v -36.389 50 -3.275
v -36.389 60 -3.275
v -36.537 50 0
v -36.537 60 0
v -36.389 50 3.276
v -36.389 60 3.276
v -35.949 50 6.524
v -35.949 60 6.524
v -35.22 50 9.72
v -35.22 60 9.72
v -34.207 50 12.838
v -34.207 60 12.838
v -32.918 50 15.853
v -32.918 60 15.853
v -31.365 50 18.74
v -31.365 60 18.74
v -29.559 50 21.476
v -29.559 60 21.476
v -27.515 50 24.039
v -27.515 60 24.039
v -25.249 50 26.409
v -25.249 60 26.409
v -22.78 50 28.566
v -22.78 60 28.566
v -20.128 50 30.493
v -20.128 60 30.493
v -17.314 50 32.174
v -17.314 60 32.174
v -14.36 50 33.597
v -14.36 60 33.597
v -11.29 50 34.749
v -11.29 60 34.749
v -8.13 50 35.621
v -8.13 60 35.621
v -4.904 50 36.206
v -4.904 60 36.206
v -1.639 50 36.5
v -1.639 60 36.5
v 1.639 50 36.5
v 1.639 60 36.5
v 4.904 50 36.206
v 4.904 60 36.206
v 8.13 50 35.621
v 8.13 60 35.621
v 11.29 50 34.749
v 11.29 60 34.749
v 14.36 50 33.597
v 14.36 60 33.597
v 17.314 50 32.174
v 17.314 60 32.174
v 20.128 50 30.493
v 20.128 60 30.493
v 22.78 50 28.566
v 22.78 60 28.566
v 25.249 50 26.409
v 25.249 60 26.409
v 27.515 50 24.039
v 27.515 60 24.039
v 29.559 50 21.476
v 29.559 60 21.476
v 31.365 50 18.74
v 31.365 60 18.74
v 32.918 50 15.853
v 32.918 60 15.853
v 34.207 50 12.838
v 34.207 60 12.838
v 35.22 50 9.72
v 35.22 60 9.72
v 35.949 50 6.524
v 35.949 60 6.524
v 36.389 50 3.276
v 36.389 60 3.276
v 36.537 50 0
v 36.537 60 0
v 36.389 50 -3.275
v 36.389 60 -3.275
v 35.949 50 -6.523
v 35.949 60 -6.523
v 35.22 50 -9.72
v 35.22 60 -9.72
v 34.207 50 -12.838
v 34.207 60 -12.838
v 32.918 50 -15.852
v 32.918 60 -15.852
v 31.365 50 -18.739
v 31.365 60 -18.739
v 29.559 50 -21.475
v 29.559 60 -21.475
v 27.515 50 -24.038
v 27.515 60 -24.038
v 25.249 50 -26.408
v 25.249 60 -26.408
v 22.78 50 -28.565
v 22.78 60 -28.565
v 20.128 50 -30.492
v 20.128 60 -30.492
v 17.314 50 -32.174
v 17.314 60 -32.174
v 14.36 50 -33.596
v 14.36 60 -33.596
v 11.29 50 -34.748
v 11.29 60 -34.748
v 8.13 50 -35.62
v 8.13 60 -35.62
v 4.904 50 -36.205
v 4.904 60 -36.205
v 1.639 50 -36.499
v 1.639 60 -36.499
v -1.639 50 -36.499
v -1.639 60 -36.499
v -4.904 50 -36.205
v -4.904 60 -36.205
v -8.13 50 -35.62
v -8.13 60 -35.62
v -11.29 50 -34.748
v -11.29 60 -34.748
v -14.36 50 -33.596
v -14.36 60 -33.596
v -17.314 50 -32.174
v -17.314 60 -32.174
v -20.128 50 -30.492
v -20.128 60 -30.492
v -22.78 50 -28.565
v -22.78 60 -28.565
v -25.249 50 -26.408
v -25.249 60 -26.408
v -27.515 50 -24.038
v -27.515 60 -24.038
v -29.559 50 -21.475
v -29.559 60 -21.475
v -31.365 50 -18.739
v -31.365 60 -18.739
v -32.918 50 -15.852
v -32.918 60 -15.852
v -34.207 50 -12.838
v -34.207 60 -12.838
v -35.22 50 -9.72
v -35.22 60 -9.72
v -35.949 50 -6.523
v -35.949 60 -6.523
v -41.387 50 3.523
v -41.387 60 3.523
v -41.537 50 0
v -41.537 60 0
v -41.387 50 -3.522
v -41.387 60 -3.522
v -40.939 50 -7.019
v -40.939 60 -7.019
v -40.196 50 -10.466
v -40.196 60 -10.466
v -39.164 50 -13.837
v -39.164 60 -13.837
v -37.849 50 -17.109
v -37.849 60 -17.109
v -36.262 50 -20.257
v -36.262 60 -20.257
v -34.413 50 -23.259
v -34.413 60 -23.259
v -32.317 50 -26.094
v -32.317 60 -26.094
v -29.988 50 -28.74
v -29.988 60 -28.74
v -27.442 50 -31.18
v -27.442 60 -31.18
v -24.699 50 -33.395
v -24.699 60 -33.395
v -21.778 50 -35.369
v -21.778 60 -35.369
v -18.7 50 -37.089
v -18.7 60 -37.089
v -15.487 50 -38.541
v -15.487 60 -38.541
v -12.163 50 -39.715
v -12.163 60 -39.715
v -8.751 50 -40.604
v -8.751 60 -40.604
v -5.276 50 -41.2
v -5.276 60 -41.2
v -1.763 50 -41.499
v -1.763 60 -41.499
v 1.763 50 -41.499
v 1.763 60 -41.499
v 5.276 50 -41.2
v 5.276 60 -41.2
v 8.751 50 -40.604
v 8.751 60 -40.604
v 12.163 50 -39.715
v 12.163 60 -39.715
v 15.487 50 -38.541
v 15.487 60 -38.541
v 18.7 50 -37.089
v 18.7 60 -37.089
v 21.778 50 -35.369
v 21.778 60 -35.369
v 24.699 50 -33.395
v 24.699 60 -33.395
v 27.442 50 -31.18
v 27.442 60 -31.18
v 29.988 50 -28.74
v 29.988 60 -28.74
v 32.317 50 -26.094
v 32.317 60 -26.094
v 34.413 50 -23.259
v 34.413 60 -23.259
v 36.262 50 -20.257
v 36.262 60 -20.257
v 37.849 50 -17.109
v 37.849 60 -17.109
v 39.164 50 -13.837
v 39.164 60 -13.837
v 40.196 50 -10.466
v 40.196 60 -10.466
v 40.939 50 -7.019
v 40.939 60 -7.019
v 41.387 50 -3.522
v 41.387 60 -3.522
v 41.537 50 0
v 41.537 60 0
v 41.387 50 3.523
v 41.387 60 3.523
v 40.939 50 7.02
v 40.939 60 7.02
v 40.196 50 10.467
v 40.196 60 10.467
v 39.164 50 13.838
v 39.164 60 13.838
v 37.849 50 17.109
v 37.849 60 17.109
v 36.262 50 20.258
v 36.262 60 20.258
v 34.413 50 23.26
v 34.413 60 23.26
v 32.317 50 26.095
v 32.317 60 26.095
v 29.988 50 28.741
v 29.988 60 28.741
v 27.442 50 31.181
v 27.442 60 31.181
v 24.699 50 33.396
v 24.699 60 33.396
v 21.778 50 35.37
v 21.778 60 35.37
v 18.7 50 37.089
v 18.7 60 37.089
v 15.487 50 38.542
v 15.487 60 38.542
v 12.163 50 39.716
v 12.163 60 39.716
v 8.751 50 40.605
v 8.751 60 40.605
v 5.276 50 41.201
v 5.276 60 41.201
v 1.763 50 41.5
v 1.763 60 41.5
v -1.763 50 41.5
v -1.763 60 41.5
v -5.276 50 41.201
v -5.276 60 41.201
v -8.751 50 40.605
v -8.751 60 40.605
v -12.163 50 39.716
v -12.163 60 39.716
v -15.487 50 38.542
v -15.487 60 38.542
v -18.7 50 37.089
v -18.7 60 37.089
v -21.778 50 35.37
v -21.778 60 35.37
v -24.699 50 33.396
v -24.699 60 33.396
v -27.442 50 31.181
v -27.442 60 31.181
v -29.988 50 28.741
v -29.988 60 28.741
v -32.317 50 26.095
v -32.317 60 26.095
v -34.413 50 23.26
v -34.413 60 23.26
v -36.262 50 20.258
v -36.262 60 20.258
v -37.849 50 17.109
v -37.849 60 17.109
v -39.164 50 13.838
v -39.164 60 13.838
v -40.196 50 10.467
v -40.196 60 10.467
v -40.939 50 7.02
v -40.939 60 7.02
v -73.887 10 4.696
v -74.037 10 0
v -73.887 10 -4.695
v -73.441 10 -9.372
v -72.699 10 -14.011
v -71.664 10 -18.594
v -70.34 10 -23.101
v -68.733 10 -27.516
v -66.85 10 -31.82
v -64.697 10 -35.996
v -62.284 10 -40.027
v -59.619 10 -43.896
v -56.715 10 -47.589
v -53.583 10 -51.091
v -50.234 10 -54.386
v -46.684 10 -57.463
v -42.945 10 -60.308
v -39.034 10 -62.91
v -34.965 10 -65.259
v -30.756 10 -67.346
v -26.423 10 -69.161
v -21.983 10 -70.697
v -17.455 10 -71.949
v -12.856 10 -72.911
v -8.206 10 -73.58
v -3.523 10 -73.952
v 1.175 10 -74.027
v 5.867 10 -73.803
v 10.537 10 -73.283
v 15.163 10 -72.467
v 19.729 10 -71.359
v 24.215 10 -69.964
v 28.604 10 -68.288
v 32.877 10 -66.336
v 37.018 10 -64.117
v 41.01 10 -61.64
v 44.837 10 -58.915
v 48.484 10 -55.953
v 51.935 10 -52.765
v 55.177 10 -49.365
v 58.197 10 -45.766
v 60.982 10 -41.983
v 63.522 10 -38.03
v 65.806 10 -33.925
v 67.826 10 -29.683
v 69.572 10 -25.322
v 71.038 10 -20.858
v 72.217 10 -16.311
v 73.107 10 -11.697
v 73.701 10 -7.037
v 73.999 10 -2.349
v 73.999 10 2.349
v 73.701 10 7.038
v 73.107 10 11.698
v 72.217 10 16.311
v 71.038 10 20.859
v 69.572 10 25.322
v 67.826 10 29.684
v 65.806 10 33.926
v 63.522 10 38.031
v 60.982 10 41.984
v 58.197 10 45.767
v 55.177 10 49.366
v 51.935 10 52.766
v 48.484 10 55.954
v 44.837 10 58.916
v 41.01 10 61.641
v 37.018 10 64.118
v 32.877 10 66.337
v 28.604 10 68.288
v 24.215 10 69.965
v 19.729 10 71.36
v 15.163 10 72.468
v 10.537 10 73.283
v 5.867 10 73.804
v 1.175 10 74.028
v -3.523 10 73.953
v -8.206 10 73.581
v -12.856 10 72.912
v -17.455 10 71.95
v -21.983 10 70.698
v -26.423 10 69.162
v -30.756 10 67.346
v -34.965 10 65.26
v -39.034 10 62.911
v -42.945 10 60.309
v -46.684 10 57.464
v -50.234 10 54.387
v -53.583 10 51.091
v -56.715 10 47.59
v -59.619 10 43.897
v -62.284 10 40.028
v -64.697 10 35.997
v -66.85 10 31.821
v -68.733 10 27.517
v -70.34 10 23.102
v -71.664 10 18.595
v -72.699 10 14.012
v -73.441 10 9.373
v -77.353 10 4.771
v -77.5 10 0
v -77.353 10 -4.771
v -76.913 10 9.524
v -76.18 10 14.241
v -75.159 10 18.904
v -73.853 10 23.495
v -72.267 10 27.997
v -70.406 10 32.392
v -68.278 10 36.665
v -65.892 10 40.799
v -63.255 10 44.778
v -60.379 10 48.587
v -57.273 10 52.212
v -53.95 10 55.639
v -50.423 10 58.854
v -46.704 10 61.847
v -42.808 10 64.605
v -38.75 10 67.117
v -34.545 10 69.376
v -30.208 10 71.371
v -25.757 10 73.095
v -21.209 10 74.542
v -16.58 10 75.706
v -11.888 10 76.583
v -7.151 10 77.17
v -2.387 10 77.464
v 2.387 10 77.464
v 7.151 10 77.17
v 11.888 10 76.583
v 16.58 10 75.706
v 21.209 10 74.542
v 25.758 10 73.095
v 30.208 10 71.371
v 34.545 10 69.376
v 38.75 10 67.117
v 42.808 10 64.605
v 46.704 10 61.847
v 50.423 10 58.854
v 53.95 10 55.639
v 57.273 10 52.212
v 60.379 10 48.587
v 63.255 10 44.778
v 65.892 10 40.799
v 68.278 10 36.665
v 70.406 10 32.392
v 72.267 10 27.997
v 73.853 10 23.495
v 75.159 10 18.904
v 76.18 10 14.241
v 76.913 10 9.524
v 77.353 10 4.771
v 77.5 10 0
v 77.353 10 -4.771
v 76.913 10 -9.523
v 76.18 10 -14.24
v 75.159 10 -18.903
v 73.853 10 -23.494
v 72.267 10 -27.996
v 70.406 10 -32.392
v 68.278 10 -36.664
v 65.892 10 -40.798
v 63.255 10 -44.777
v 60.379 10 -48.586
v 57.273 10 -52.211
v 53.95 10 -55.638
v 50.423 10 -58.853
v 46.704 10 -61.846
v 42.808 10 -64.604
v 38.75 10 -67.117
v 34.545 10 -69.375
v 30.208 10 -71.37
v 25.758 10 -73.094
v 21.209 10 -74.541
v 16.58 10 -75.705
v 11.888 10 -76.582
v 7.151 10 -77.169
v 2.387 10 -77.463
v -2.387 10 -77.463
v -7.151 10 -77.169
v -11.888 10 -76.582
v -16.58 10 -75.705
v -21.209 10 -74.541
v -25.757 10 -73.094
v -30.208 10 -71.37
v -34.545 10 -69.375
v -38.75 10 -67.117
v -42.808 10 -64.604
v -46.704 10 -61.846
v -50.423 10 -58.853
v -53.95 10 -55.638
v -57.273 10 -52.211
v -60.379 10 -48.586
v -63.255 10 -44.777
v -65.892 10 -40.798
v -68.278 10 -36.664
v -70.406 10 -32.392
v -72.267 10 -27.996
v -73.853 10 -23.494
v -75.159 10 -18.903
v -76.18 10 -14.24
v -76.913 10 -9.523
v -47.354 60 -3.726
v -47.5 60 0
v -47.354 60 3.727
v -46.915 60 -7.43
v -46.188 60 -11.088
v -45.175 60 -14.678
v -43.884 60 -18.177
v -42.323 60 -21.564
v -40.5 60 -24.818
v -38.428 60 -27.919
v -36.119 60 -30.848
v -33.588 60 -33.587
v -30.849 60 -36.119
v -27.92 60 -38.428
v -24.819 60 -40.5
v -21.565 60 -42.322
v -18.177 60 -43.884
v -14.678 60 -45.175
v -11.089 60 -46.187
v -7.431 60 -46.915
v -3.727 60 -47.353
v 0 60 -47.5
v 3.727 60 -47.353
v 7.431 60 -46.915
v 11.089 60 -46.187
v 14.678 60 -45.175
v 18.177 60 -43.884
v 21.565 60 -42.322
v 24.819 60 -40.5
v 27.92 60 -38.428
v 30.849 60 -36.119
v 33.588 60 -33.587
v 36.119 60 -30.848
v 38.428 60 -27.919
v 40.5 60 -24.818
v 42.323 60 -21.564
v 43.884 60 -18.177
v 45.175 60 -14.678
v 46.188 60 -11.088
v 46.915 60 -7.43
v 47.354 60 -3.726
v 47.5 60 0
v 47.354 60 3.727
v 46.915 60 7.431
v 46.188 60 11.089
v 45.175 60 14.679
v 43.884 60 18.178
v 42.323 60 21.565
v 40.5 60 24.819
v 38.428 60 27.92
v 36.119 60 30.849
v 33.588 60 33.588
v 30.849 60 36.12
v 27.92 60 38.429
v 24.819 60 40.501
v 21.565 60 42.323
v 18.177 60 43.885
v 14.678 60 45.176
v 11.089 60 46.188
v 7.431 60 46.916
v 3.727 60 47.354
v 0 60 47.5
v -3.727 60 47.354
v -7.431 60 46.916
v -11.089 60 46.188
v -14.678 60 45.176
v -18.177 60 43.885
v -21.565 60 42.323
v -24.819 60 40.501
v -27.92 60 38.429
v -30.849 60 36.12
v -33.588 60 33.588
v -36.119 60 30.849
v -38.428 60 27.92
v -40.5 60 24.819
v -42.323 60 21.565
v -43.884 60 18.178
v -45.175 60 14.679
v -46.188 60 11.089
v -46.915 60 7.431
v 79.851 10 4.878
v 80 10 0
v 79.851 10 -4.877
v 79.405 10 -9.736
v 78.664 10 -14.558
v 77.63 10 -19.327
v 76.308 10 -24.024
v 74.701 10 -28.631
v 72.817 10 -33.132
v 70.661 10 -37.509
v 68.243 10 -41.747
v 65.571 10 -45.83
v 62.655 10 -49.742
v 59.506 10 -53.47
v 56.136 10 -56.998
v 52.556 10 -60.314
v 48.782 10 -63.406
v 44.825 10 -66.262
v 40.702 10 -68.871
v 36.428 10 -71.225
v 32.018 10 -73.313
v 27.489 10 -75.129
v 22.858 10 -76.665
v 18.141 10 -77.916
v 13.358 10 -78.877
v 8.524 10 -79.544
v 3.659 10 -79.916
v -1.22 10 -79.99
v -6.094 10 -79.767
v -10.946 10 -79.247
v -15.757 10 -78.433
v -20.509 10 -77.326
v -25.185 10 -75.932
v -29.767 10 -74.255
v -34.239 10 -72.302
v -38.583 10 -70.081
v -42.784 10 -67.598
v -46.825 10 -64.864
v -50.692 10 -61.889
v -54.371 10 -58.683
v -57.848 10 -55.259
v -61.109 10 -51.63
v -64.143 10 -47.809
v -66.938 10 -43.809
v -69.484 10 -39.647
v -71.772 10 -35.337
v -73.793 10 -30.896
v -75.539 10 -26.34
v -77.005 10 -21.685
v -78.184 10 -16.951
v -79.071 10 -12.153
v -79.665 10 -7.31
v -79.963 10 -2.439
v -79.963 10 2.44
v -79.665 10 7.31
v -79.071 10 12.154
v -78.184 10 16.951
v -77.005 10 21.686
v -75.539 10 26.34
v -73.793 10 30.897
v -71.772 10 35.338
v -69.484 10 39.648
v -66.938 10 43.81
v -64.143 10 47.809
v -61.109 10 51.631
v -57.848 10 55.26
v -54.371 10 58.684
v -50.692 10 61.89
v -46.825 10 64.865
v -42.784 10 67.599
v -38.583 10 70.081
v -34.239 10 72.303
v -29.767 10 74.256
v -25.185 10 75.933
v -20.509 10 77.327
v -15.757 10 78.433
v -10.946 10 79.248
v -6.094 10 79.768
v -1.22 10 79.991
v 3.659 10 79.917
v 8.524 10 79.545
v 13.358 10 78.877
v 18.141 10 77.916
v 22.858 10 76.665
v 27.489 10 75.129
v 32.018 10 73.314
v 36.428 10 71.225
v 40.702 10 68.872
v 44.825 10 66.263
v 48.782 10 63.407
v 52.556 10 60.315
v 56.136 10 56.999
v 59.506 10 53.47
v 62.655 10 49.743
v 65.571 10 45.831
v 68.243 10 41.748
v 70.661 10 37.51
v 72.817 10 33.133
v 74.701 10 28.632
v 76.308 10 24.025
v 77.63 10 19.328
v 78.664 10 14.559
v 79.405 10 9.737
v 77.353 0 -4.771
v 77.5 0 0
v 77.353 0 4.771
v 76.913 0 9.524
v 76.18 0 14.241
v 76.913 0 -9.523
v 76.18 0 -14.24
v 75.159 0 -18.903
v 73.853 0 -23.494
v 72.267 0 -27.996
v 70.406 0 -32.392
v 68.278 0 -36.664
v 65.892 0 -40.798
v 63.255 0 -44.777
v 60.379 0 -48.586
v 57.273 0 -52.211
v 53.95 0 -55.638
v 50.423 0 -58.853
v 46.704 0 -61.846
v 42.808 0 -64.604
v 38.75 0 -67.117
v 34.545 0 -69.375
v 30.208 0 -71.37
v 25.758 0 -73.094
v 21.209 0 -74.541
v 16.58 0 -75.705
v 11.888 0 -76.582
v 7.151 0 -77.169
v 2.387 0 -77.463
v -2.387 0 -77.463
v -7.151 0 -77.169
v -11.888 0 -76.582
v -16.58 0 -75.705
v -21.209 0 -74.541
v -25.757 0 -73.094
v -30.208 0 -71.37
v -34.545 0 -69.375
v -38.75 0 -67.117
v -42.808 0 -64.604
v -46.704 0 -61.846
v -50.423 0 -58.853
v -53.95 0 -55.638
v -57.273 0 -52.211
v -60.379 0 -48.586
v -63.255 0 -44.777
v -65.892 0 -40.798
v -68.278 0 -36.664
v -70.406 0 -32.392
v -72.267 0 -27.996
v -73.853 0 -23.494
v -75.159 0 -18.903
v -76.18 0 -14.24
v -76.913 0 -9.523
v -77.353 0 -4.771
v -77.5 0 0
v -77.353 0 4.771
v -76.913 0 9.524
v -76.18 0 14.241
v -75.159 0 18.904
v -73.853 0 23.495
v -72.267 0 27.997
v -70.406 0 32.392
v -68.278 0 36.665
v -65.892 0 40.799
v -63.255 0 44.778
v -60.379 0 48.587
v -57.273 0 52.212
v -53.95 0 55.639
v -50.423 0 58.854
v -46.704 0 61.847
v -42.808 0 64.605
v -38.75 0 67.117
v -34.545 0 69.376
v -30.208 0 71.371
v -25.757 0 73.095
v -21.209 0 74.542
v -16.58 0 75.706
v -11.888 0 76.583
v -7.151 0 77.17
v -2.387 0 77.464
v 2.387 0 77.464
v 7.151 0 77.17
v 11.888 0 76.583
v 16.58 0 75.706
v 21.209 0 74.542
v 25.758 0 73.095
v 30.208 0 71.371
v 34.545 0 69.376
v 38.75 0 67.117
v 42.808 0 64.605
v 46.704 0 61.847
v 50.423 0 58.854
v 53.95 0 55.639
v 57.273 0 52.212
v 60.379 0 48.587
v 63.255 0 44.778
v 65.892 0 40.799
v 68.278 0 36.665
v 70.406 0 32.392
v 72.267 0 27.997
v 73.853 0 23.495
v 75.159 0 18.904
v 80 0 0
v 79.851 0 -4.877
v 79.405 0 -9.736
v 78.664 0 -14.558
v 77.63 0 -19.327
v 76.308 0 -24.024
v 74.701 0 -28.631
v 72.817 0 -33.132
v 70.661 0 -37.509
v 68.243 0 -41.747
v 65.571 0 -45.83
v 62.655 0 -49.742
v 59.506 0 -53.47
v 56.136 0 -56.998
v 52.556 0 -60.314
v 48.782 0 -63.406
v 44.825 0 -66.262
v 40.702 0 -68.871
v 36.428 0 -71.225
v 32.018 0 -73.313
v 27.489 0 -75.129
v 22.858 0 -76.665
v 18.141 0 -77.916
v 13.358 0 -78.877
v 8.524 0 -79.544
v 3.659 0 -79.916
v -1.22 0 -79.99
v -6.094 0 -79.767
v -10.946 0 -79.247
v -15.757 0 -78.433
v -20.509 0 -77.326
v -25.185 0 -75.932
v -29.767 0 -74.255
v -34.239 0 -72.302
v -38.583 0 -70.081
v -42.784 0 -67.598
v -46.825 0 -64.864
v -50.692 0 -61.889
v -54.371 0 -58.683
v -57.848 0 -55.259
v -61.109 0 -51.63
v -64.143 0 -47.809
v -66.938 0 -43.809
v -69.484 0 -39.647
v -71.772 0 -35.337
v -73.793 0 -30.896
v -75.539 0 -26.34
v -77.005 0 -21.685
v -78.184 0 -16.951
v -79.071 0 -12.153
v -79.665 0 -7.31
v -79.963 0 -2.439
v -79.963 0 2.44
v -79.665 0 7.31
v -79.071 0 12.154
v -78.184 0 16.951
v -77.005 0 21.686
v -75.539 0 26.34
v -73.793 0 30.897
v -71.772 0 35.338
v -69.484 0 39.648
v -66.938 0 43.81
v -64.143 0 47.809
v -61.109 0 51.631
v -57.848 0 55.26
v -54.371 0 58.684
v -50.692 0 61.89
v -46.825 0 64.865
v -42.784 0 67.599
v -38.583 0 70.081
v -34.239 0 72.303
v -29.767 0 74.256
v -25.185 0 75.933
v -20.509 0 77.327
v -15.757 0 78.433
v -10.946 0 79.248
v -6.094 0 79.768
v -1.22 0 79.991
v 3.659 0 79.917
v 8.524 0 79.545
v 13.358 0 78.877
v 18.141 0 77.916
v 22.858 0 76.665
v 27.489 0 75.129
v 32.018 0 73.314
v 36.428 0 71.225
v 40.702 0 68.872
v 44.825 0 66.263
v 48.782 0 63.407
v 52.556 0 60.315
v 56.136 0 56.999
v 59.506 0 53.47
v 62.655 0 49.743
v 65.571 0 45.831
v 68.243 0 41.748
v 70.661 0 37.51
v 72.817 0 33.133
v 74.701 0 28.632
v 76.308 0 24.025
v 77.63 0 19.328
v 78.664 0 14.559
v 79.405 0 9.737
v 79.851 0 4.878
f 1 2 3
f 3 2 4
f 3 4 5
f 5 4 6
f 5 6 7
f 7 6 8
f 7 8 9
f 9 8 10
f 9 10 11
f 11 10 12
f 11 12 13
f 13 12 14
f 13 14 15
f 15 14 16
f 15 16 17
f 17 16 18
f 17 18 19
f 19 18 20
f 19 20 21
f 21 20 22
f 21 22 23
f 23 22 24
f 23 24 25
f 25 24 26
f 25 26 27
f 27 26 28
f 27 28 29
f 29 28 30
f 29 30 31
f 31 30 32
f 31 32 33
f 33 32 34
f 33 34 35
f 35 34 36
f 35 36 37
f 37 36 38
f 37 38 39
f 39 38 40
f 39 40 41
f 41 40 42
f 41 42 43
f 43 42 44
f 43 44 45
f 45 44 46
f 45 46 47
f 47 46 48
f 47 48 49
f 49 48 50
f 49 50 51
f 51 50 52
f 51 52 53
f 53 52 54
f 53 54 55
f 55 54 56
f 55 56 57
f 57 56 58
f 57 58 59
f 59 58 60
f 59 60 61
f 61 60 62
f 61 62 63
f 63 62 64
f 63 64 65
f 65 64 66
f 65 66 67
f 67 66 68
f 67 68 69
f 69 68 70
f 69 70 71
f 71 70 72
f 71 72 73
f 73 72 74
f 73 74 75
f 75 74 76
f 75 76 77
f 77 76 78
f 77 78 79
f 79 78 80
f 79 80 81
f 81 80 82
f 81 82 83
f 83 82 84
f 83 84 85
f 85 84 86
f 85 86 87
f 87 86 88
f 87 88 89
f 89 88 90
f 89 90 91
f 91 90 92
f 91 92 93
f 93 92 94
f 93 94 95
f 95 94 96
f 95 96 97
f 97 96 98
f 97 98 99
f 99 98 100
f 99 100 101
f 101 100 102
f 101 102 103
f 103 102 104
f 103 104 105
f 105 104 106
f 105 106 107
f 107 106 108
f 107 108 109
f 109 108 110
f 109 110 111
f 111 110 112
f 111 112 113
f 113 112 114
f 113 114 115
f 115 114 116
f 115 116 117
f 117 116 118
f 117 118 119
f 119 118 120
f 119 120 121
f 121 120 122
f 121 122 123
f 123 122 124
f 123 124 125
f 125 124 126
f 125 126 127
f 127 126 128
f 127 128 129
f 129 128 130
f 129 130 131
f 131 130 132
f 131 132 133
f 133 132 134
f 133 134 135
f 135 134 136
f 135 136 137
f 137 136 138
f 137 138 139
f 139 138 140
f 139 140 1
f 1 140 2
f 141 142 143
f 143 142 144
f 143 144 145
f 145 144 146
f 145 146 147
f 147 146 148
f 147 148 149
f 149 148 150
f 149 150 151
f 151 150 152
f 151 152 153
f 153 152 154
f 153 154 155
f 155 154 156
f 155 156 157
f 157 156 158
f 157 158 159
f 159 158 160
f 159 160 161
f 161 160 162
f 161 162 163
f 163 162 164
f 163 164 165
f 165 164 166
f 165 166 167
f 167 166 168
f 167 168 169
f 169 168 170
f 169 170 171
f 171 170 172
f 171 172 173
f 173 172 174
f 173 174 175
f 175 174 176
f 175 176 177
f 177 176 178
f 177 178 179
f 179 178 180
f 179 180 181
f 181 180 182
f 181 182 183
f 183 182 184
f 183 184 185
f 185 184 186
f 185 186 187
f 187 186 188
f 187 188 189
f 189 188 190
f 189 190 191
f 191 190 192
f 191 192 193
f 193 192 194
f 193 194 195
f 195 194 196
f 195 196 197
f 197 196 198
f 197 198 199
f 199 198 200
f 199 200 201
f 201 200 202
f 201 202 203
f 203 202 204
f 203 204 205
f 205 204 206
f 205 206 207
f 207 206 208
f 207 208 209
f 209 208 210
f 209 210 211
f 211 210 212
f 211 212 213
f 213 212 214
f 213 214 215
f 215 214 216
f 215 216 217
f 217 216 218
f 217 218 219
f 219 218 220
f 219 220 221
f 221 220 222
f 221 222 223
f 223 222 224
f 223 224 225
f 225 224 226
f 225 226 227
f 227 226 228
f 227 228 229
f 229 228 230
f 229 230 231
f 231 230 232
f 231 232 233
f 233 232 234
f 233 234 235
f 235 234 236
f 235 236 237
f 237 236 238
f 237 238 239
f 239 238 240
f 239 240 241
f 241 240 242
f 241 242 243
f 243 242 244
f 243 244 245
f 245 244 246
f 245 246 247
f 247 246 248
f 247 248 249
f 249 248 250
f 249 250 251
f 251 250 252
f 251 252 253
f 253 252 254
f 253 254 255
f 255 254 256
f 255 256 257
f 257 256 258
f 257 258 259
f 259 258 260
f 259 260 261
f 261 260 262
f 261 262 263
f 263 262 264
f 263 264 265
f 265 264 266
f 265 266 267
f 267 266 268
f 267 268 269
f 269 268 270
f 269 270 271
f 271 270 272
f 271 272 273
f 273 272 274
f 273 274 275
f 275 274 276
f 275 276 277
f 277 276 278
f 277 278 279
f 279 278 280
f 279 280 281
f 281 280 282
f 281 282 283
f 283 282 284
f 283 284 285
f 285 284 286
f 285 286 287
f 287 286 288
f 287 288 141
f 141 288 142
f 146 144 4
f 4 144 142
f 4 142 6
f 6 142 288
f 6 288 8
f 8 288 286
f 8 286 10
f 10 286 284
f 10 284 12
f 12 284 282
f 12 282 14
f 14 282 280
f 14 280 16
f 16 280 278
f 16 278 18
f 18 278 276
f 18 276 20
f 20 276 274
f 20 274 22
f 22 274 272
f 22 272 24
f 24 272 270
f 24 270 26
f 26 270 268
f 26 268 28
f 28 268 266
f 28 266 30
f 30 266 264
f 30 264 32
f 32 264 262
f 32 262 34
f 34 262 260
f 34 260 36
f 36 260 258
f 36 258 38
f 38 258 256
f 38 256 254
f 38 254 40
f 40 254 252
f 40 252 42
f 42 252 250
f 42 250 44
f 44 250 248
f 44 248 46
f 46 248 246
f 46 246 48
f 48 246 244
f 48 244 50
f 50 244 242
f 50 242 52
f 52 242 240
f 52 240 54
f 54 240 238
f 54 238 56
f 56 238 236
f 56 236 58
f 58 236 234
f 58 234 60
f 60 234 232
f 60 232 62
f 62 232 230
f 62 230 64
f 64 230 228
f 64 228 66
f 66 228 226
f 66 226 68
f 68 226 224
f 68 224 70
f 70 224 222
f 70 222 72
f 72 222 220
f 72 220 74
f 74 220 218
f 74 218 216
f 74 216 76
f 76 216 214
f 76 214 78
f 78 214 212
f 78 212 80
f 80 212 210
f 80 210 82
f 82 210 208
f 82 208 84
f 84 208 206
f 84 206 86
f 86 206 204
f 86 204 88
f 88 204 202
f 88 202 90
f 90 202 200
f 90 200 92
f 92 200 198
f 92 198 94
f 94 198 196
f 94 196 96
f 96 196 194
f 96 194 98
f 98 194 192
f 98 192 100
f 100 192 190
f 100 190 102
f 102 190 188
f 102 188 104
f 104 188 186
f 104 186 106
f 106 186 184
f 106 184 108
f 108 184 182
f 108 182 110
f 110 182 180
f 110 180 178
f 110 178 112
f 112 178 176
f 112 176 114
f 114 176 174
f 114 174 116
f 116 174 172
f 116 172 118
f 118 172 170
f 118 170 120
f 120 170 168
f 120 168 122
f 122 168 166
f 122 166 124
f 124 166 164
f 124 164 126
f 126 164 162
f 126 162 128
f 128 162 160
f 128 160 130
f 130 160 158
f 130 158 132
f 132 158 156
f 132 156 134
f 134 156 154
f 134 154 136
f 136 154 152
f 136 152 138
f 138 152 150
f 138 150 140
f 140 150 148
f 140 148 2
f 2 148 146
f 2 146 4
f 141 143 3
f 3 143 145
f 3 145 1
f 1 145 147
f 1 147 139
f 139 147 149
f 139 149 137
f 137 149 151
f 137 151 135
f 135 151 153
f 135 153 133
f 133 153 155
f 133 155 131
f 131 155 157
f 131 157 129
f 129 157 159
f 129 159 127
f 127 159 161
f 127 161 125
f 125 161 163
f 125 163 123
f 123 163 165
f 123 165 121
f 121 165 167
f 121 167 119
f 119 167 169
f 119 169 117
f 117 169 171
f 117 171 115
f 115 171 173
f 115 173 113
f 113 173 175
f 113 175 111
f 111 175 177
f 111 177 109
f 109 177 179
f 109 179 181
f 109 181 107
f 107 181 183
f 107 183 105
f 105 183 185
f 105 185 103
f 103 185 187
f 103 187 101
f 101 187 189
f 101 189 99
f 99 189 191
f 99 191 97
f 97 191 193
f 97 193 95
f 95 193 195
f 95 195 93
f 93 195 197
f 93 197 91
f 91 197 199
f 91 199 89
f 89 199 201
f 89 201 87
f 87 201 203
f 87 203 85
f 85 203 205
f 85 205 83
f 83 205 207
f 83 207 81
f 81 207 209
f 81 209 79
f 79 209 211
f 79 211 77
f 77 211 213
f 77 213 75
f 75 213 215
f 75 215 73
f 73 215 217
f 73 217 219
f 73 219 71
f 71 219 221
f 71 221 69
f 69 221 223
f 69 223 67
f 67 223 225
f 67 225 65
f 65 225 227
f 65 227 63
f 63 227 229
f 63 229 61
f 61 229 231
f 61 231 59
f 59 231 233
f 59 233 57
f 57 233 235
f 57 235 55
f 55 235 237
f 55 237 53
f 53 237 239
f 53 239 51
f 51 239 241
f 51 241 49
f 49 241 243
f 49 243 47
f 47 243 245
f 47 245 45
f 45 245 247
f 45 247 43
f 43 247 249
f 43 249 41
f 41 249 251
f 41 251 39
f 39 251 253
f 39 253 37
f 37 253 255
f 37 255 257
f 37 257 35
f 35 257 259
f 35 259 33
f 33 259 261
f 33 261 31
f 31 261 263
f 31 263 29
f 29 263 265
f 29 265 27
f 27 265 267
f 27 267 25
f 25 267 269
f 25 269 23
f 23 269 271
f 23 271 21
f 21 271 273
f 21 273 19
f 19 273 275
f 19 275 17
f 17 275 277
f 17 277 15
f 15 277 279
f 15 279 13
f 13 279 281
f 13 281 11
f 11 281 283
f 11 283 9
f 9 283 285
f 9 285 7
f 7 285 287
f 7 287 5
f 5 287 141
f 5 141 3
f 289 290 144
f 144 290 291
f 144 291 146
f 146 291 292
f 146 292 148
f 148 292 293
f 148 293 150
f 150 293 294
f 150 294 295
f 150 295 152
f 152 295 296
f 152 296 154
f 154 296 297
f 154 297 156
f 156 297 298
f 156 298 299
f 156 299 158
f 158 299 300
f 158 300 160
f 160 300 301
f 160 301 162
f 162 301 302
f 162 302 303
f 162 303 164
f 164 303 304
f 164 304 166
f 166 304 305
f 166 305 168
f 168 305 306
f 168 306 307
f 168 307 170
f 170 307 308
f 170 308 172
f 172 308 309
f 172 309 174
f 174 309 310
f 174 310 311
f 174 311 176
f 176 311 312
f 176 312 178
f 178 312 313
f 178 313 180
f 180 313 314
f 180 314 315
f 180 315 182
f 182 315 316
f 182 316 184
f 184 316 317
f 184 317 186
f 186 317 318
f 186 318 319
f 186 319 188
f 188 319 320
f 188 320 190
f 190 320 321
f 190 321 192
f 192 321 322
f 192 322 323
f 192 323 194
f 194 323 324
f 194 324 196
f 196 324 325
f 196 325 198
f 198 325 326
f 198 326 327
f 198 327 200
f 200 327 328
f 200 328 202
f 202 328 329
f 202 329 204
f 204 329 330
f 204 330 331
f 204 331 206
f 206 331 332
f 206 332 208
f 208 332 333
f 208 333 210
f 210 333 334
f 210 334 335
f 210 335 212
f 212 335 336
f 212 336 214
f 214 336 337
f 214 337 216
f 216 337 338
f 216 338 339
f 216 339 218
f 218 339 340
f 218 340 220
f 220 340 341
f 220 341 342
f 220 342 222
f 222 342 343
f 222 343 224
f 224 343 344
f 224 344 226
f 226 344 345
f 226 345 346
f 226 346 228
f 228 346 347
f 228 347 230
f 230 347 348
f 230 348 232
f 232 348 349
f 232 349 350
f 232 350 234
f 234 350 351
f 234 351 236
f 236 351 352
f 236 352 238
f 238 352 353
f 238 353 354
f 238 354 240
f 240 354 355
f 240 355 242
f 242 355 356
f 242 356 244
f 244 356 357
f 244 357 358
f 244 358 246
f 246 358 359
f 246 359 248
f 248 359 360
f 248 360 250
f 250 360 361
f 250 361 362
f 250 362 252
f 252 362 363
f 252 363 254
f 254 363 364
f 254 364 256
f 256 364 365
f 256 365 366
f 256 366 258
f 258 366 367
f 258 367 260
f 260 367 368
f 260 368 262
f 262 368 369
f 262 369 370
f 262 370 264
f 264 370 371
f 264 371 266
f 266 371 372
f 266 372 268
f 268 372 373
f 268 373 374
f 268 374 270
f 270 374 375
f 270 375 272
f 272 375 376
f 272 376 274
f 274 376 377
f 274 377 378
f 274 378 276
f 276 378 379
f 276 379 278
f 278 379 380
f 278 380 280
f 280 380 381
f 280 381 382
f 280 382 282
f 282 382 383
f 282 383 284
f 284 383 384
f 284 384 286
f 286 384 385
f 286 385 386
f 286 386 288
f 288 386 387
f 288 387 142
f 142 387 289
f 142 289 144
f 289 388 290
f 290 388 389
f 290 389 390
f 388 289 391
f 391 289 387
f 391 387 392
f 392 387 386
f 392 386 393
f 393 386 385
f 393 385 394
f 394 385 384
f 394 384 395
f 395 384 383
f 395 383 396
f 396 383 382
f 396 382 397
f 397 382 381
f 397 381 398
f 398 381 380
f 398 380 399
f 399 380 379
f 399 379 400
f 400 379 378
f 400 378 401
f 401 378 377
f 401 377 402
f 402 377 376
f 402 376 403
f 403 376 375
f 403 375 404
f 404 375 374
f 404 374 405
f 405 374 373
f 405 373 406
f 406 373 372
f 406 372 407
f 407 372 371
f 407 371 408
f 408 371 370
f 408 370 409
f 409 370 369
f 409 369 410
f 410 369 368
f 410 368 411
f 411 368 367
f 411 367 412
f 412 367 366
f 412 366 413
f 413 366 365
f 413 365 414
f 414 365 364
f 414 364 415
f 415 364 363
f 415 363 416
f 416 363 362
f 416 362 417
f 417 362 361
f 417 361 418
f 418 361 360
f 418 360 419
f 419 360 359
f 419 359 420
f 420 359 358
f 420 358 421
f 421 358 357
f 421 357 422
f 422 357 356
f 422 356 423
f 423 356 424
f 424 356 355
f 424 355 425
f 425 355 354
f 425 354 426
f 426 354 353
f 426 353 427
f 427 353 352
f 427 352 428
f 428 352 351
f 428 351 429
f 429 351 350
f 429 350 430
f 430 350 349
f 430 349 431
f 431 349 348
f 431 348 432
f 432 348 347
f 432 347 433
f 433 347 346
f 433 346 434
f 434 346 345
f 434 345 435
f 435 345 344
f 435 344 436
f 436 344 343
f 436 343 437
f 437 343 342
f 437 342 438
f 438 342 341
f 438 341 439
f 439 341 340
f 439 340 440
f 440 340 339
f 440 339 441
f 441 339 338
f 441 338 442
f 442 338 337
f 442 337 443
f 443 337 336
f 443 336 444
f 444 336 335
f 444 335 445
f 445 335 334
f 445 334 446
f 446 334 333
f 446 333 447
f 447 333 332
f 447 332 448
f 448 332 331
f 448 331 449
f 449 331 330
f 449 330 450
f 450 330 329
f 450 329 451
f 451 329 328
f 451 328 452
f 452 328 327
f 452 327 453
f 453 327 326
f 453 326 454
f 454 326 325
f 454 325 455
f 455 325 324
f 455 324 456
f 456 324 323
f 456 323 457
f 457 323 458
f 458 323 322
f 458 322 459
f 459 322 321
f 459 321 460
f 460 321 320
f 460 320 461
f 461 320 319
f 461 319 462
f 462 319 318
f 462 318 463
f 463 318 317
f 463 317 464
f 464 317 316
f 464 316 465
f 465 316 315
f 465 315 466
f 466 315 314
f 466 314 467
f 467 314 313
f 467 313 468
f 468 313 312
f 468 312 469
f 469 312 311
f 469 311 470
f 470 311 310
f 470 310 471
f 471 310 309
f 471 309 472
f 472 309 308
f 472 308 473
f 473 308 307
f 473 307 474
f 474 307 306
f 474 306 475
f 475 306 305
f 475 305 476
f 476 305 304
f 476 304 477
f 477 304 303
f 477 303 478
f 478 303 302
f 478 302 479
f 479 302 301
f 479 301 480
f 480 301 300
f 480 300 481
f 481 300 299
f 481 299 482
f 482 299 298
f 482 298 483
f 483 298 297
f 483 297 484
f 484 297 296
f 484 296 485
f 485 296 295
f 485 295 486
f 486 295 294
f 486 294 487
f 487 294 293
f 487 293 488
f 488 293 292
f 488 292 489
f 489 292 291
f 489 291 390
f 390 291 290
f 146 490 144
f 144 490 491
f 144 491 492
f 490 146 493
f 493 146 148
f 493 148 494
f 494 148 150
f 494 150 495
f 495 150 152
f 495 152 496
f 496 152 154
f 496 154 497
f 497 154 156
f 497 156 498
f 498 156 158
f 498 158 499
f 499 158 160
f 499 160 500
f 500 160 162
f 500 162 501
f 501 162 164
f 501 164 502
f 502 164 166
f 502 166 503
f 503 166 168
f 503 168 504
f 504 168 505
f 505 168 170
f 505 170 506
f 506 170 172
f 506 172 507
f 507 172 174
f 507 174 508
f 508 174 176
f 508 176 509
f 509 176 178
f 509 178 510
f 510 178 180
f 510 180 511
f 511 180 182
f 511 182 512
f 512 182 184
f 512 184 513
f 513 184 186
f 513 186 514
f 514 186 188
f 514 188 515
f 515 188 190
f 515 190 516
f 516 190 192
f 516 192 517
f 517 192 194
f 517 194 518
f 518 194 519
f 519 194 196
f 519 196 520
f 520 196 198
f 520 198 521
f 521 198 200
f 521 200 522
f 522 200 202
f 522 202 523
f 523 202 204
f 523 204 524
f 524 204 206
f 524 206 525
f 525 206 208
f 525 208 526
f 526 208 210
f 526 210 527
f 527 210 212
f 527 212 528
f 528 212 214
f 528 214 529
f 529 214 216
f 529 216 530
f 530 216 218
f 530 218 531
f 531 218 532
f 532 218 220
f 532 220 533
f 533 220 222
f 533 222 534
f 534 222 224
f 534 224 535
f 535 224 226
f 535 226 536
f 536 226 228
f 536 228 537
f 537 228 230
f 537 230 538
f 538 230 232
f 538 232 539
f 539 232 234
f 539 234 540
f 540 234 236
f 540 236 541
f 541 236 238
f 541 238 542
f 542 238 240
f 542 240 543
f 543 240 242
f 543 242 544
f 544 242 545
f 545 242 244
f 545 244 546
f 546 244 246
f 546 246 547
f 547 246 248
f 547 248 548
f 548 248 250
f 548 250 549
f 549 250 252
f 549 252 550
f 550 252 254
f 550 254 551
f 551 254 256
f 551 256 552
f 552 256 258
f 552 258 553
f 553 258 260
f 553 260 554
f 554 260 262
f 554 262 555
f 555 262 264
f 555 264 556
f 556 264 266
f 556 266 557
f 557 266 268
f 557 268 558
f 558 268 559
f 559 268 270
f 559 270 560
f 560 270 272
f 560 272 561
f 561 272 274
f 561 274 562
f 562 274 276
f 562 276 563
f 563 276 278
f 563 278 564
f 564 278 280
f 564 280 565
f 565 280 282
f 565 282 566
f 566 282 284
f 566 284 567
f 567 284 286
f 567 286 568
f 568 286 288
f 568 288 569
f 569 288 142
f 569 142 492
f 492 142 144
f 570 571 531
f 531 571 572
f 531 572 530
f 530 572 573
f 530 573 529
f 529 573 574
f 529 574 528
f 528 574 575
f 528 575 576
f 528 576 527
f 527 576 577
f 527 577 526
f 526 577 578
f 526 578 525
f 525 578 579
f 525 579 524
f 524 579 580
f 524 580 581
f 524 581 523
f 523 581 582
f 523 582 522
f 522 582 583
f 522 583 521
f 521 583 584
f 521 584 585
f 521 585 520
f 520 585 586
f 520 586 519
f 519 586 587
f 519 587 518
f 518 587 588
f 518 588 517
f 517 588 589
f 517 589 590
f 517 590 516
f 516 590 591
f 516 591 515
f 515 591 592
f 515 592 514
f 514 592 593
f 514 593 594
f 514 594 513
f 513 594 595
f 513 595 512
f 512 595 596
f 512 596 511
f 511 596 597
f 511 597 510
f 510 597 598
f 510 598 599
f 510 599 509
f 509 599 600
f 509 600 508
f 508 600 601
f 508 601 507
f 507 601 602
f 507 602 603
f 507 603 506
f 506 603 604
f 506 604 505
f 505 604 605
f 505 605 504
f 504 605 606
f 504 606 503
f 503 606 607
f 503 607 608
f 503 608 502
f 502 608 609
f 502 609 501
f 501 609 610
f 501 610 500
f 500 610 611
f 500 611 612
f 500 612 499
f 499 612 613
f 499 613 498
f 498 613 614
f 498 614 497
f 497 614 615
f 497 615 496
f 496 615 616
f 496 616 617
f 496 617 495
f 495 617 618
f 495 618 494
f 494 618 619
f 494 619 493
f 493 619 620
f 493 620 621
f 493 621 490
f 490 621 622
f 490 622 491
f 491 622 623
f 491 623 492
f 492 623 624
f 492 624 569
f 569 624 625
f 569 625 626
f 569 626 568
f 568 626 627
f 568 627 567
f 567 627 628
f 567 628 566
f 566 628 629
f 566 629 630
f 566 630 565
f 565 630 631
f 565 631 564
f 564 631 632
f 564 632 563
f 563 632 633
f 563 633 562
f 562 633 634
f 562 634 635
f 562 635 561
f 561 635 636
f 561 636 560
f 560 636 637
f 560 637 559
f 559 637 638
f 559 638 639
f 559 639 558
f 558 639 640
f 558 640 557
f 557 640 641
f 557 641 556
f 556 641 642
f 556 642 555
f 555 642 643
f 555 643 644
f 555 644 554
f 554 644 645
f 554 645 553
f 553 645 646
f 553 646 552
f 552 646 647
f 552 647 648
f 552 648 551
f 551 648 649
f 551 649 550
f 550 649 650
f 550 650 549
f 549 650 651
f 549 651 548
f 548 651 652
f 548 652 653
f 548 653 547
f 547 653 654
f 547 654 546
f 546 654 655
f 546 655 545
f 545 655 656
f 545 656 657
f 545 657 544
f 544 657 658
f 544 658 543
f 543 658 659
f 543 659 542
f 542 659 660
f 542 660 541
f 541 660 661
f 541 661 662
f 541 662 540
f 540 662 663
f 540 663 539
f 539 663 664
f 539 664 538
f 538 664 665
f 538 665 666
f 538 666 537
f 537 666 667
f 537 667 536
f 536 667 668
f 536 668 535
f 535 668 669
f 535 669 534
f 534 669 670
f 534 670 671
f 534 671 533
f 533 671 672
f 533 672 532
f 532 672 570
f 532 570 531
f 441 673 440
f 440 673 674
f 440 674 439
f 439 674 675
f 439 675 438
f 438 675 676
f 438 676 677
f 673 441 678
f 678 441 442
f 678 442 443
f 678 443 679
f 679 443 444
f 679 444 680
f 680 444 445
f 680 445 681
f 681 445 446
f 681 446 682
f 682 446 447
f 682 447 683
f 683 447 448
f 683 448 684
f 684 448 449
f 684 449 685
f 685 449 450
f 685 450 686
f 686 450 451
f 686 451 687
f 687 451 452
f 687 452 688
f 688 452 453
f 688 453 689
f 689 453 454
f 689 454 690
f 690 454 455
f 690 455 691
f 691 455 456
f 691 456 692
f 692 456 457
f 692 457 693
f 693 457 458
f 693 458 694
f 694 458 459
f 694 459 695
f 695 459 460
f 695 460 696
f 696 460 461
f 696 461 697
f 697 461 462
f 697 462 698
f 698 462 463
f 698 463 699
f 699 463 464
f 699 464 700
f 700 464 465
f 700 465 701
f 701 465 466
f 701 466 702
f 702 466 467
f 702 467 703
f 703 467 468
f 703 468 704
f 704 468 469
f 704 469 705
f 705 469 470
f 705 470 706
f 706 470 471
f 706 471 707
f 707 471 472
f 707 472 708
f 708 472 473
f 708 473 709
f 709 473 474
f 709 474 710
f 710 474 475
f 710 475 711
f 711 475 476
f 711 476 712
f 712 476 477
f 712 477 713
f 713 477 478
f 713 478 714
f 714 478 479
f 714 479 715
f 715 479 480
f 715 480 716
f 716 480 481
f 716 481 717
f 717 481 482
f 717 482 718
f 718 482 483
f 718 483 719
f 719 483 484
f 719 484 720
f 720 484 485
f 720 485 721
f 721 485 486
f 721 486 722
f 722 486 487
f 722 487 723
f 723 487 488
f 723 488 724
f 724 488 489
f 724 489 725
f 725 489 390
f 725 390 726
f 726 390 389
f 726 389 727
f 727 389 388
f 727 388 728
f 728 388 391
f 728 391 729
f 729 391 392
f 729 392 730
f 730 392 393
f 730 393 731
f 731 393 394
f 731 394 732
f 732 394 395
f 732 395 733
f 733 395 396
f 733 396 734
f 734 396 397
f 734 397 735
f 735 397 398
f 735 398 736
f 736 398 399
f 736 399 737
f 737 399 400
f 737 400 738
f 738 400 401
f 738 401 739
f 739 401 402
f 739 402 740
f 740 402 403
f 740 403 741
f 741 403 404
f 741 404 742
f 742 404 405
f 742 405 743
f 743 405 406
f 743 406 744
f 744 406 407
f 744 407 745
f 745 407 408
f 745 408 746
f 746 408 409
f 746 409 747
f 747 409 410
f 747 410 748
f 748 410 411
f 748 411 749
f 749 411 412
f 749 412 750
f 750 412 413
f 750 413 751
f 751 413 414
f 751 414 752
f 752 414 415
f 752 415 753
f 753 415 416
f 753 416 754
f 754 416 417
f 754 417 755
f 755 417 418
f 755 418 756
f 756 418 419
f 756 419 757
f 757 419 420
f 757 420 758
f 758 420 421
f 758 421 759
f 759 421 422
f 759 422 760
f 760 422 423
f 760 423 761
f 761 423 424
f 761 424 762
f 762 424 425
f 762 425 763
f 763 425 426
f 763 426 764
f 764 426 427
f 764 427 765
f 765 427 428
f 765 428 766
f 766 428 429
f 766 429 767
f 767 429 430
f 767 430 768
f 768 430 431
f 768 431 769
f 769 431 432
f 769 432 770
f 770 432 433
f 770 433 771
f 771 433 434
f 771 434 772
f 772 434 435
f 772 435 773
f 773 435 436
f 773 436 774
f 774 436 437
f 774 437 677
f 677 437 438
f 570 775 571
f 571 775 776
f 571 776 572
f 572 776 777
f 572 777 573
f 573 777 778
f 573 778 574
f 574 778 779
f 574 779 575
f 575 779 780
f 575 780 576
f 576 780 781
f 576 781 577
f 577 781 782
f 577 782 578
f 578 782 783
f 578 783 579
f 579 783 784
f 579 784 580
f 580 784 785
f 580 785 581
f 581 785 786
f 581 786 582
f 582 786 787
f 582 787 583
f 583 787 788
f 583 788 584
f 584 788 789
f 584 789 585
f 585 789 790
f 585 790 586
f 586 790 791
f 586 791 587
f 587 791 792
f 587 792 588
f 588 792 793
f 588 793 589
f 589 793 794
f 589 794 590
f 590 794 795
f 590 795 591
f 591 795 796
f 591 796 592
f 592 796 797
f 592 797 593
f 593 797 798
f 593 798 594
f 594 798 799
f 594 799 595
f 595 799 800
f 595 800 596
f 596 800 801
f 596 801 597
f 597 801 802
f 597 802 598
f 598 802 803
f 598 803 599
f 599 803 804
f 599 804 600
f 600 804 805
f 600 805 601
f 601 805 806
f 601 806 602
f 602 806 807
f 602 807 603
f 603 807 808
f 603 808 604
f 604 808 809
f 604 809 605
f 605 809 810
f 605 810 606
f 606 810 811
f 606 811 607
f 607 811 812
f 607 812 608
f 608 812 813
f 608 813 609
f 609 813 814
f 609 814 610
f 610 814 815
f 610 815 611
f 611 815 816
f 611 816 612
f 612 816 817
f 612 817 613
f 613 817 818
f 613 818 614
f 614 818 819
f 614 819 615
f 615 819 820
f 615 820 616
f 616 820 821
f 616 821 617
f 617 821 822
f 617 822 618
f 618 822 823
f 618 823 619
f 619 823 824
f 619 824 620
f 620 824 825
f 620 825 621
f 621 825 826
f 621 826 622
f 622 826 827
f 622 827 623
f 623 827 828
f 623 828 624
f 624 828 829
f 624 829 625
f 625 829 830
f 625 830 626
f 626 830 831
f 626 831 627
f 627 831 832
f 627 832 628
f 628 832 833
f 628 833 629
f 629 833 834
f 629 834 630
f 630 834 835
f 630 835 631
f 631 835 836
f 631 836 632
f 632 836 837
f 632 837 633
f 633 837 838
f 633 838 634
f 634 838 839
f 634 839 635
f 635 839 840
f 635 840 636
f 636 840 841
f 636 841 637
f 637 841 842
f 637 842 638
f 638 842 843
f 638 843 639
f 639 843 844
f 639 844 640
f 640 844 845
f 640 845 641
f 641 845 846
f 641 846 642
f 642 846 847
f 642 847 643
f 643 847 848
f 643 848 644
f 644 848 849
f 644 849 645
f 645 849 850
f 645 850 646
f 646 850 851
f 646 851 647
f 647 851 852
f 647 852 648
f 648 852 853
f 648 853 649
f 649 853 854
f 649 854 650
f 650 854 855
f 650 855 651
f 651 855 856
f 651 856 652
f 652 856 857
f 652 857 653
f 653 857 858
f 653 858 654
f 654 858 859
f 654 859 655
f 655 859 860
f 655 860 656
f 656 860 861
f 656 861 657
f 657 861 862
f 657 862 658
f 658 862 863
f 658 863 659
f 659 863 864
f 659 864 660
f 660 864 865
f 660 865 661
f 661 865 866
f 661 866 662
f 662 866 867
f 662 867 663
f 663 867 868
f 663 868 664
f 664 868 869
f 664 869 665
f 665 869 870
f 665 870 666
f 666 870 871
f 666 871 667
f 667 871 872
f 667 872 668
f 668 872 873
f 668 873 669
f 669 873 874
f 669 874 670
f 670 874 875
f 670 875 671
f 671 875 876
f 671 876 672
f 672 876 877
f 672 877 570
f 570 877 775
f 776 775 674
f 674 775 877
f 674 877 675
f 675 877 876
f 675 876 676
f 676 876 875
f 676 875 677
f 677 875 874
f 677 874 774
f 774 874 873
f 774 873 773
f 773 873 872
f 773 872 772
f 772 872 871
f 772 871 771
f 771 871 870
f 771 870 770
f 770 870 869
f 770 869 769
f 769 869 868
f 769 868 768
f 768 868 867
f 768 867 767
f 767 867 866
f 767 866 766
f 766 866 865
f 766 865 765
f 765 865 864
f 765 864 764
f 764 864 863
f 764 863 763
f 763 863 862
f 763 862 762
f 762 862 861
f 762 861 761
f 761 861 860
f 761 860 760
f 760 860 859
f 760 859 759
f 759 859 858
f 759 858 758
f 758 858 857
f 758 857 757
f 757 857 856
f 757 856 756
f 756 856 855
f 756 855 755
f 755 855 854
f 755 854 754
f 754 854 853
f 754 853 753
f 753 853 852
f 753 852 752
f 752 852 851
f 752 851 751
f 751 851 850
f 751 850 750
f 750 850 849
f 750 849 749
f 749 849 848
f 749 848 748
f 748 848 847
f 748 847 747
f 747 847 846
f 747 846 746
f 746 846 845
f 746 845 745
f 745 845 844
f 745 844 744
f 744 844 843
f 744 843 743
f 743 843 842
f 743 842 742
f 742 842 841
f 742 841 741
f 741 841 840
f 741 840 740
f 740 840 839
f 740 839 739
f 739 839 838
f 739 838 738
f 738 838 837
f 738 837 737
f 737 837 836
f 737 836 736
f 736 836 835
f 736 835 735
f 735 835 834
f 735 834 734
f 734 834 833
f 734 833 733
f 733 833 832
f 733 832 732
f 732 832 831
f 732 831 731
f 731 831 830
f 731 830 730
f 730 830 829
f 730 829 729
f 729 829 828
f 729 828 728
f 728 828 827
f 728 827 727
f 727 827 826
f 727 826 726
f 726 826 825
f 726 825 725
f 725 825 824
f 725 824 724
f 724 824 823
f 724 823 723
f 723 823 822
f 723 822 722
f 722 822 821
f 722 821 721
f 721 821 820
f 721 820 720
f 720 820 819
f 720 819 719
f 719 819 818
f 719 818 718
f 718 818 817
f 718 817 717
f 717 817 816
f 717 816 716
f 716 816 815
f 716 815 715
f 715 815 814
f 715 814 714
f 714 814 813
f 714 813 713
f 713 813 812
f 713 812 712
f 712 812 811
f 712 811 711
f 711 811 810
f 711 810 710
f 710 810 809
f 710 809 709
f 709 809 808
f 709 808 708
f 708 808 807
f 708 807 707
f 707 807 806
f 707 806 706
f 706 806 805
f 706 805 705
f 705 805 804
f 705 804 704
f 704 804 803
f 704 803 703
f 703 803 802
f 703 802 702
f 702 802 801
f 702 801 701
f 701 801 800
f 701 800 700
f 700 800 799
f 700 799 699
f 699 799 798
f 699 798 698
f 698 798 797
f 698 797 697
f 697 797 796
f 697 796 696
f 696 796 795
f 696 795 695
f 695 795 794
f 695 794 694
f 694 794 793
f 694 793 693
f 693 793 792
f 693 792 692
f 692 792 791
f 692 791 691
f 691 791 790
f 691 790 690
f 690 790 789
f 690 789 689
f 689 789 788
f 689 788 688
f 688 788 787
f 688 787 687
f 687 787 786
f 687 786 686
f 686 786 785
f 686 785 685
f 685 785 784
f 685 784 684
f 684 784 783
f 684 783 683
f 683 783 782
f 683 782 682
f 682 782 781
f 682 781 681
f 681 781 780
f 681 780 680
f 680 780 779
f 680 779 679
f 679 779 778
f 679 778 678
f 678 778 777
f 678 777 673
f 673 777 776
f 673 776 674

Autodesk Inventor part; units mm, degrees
ref_plane "YZ Plane" through (0, 0, 0) normal (1, 0, 0) x (0, 1, 0)
ref_plane "XZ Plane" through (0, 0, 0) normal (0, 1, 0) x (-1, 0, 0)
sketch "Sketch1" plane through (0, 0, 0) normal (0, 1, 0) x (-1, 0, 0)
  circle A0 centre (0, 0) radius 80
  circle A1 centre (0, 0) radius 77.5
  dimension "d0" = 160
  dimension "d1" = 2.5
extrude "Extrusion1" add sketch "Sketch1" along normal blind 10
ref_plane "Work Plane1" through (0, 60, 0) normal (0, 1, 0) x (1, 0, 0)
sketch "Sketch2" plane through (0, 60, 0) normal (0, 1, 0) x (1, 0, 0)
  circle A0 centre (0, 0) radius 52.5
  circle A1 centre (0, 0) radius 77.5 projected
  circle A2 centre (0, 0) radius 47.5
  dimension "d5" = 25
  dimension "d6" = 5
loft "Loft1" add profiles "Sketch2" section 1 edges at (80, 10, 0) contours A2
shell "Shell1" thickness 5 removed faces 2 at (-3.5318, 60, -3.5628) at (-15.7693, 10, 10.5801)
sketch "Sketch4" plane through (0, 60, 0) normal (0, 1, 0) x (1, 0, 0)
  circle A0 centre (0, 0) radius 36.5366
  circle A1 centre (0, 0) radius 41.5366 projected
  dimension "d18" = 5
extrude "Extrusion4" add sketch "Sketch4" against normal blind 10
properties part number "Parte baja R2D2_3DPrint"
